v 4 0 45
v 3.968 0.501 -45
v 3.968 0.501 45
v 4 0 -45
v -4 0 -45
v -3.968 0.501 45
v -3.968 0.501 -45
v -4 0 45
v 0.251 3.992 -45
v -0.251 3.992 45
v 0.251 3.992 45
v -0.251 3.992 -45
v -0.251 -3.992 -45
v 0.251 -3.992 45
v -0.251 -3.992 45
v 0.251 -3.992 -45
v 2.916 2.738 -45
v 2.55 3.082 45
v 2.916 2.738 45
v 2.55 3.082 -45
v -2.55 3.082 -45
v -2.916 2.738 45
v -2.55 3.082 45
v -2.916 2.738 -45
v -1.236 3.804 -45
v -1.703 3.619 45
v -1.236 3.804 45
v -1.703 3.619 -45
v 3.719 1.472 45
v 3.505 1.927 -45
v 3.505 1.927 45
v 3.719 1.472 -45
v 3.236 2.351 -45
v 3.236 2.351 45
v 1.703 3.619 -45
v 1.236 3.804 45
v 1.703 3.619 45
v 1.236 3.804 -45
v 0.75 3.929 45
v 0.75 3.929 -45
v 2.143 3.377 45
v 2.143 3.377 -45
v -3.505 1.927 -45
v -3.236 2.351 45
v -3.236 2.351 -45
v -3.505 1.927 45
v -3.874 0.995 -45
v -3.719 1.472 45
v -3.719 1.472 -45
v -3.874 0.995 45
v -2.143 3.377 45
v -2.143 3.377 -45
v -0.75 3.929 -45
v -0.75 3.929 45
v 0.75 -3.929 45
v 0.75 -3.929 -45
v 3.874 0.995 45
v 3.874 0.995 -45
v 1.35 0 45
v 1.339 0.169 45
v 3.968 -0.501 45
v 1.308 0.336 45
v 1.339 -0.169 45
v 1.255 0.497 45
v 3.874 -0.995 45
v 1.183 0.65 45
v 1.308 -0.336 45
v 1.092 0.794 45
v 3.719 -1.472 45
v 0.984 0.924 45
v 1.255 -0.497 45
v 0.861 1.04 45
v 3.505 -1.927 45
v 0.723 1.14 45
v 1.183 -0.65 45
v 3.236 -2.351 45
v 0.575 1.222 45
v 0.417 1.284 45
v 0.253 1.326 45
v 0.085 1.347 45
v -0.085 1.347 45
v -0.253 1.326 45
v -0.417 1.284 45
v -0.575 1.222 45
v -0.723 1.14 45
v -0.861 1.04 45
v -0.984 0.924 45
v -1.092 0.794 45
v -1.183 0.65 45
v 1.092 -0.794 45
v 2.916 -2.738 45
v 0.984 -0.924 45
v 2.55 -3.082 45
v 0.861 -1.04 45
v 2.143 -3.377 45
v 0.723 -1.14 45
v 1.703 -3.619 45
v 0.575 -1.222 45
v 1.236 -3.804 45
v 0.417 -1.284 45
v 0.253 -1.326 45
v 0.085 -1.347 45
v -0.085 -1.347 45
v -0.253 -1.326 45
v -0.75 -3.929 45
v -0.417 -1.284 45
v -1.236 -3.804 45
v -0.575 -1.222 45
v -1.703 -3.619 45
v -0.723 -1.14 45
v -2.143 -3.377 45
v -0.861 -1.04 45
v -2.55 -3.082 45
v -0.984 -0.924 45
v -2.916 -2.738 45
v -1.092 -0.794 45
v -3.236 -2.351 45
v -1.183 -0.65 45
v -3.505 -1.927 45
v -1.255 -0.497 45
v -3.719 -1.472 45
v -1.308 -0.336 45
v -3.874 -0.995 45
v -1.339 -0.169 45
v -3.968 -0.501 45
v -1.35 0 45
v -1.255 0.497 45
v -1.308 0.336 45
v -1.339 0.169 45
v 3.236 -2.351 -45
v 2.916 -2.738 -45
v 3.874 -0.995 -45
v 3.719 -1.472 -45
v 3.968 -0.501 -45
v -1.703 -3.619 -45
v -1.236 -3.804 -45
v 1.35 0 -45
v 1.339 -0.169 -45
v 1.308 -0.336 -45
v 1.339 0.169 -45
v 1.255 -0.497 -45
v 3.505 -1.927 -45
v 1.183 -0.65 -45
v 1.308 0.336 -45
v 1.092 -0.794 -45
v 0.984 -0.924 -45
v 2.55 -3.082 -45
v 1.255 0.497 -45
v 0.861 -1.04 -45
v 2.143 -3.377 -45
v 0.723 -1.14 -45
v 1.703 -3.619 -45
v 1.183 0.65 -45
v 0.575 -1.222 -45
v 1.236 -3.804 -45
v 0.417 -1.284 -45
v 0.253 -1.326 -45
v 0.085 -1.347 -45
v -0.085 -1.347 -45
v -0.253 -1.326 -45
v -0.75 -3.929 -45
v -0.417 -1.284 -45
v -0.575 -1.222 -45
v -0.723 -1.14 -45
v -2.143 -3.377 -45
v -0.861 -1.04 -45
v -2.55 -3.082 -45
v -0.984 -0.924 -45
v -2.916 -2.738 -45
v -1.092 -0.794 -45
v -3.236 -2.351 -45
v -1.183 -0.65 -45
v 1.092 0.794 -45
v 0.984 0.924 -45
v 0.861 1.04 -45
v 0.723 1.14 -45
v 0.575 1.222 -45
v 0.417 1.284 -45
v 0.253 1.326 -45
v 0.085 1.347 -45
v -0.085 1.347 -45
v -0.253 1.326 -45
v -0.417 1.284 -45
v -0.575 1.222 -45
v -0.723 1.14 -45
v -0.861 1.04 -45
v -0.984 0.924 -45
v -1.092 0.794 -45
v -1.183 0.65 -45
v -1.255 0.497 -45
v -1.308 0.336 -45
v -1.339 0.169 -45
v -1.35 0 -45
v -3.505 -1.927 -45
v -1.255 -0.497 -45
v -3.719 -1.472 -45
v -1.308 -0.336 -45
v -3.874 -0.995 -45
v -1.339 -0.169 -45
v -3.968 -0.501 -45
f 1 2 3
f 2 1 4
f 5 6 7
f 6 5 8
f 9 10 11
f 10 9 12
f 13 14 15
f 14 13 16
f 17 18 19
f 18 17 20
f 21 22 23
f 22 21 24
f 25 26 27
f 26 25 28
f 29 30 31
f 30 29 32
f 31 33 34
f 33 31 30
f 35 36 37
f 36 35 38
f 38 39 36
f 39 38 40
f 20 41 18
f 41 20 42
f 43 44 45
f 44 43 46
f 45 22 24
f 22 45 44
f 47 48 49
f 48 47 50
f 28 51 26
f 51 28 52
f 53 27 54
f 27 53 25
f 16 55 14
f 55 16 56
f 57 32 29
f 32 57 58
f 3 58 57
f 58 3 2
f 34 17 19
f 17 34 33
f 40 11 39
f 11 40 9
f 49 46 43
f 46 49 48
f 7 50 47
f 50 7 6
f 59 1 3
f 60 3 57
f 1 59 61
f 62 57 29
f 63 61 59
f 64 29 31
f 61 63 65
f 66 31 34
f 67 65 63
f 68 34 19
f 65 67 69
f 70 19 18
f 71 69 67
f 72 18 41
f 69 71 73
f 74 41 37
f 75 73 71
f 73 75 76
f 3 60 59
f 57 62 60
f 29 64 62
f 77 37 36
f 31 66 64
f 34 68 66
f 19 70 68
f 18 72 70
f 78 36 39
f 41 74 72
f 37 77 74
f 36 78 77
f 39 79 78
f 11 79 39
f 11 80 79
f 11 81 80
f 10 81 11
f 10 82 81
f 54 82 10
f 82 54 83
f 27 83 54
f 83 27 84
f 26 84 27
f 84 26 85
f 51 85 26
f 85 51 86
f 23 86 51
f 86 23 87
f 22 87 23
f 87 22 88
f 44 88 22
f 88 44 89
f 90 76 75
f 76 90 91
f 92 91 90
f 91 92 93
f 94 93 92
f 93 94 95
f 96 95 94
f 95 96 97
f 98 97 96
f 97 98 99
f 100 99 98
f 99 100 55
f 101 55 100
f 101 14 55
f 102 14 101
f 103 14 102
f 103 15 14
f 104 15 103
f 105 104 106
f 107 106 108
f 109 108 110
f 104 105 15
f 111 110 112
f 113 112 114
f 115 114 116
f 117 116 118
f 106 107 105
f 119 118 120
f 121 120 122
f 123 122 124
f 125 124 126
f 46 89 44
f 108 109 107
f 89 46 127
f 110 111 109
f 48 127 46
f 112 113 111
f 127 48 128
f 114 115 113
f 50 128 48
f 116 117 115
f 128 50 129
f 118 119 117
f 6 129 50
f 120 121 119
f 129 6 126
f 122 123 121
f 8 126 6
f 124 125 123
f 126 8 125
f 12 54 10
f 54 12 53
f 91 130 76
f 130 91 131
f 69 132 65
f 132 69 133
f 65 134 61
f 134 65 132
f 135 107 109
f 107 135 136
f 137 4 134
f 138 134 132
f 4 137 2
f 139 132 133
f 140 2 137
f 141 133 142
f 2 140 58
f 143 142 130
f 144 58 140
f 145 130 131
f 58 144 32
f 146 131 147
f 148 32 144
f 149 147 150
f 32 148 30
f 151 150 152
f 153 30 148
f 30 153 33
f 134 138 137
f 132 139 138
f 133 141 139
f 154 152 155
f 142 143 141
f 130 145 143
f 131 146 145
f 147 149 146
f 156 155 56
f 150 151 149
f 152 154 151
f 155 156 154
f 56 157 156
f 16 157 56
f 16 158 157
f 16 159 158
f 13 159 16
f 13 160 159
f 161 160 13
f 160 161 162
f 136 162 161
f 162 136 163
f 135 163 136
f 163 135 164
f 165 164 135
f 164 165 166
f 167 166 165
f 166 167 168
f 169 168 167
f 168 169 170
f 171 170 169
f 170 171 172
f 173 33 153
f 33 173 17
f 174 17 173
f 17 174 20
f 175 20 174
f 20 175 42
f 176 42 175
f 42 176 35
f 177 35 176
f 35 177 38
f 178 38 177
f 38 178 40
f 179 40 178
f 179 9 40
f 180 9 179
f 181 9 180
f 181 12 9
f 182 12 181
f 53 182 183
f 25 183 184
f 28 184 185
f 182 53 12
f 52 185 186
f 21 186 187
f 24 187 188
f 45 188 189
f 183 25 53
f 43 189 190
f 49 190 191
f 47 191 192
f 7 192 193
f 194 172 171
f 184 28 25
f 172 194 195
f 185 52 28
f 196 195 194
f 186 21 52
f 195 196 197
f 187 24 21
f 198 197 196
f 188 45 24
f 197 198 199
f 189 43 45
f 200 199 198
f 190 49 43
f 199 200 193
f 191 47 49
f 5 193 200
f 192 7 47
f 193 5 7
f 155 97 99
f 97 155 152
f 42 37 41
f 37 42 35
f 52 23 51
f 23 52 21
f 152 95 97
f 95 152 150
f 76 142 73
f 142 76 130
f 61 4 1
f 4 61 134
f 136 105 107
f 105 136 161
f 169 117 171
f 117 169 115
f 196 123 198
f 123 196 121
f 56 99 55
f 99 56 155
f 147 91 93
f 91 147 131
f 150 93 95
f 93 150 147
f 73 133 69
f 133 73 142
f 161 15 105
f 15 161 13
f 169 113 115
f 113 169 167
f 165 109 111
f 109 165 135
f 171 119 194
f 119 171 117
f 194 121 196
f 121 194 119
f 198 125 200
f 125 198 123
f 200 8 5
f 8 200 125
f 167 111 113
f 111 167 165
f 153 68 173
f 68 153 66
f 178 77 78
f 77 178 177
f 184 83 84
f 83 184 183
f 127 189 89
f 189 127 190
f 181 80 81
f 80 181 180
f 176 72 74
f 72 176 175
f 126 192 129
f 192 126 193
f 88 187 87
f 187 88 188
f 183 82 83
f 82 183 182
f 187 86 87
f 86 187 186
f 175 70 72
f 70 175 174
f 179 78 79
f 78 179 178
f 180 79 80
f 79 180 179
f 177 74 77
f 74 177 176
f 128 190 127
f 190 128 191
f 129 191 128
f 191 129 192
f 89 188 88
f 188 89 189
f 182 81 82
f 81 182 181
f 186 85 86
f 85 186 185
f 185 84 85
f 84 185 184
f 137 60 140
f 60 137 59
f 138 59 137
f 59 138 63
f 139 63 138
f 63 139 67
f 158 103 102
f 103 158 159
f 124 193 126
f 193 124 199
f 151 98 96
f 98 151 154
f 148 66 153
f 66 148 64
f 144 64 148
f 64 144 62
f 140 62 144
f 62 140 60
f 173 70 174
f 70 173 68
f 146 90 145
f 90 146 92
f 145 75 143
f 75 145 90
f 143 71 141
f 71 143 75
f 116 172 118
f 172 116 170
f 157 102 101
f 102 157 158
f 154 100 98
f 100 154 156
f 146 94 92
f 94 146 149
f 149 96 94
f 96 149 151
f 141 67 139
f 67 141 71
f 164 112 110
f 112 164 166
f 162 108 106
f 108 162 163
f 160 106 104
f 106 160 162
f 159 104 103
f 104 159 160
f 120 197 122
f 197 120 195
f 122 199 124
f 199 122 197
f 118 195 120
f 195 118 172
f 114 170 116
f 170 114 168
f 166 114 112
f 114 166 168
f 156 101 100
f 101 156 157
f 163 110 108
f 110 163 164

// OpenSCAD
$fn = 50;


difference() {
	union() {
		translate(v = [0, 0, -45.0000000000]) {
			cylinder(h = 90, r = 4.0000000000);
		}
	}
	union() {
		translate(v = [0, 0, -100.0000000000]) {
			cylinder(h = 200, r = 1.3500000000);
		}
	}
}
